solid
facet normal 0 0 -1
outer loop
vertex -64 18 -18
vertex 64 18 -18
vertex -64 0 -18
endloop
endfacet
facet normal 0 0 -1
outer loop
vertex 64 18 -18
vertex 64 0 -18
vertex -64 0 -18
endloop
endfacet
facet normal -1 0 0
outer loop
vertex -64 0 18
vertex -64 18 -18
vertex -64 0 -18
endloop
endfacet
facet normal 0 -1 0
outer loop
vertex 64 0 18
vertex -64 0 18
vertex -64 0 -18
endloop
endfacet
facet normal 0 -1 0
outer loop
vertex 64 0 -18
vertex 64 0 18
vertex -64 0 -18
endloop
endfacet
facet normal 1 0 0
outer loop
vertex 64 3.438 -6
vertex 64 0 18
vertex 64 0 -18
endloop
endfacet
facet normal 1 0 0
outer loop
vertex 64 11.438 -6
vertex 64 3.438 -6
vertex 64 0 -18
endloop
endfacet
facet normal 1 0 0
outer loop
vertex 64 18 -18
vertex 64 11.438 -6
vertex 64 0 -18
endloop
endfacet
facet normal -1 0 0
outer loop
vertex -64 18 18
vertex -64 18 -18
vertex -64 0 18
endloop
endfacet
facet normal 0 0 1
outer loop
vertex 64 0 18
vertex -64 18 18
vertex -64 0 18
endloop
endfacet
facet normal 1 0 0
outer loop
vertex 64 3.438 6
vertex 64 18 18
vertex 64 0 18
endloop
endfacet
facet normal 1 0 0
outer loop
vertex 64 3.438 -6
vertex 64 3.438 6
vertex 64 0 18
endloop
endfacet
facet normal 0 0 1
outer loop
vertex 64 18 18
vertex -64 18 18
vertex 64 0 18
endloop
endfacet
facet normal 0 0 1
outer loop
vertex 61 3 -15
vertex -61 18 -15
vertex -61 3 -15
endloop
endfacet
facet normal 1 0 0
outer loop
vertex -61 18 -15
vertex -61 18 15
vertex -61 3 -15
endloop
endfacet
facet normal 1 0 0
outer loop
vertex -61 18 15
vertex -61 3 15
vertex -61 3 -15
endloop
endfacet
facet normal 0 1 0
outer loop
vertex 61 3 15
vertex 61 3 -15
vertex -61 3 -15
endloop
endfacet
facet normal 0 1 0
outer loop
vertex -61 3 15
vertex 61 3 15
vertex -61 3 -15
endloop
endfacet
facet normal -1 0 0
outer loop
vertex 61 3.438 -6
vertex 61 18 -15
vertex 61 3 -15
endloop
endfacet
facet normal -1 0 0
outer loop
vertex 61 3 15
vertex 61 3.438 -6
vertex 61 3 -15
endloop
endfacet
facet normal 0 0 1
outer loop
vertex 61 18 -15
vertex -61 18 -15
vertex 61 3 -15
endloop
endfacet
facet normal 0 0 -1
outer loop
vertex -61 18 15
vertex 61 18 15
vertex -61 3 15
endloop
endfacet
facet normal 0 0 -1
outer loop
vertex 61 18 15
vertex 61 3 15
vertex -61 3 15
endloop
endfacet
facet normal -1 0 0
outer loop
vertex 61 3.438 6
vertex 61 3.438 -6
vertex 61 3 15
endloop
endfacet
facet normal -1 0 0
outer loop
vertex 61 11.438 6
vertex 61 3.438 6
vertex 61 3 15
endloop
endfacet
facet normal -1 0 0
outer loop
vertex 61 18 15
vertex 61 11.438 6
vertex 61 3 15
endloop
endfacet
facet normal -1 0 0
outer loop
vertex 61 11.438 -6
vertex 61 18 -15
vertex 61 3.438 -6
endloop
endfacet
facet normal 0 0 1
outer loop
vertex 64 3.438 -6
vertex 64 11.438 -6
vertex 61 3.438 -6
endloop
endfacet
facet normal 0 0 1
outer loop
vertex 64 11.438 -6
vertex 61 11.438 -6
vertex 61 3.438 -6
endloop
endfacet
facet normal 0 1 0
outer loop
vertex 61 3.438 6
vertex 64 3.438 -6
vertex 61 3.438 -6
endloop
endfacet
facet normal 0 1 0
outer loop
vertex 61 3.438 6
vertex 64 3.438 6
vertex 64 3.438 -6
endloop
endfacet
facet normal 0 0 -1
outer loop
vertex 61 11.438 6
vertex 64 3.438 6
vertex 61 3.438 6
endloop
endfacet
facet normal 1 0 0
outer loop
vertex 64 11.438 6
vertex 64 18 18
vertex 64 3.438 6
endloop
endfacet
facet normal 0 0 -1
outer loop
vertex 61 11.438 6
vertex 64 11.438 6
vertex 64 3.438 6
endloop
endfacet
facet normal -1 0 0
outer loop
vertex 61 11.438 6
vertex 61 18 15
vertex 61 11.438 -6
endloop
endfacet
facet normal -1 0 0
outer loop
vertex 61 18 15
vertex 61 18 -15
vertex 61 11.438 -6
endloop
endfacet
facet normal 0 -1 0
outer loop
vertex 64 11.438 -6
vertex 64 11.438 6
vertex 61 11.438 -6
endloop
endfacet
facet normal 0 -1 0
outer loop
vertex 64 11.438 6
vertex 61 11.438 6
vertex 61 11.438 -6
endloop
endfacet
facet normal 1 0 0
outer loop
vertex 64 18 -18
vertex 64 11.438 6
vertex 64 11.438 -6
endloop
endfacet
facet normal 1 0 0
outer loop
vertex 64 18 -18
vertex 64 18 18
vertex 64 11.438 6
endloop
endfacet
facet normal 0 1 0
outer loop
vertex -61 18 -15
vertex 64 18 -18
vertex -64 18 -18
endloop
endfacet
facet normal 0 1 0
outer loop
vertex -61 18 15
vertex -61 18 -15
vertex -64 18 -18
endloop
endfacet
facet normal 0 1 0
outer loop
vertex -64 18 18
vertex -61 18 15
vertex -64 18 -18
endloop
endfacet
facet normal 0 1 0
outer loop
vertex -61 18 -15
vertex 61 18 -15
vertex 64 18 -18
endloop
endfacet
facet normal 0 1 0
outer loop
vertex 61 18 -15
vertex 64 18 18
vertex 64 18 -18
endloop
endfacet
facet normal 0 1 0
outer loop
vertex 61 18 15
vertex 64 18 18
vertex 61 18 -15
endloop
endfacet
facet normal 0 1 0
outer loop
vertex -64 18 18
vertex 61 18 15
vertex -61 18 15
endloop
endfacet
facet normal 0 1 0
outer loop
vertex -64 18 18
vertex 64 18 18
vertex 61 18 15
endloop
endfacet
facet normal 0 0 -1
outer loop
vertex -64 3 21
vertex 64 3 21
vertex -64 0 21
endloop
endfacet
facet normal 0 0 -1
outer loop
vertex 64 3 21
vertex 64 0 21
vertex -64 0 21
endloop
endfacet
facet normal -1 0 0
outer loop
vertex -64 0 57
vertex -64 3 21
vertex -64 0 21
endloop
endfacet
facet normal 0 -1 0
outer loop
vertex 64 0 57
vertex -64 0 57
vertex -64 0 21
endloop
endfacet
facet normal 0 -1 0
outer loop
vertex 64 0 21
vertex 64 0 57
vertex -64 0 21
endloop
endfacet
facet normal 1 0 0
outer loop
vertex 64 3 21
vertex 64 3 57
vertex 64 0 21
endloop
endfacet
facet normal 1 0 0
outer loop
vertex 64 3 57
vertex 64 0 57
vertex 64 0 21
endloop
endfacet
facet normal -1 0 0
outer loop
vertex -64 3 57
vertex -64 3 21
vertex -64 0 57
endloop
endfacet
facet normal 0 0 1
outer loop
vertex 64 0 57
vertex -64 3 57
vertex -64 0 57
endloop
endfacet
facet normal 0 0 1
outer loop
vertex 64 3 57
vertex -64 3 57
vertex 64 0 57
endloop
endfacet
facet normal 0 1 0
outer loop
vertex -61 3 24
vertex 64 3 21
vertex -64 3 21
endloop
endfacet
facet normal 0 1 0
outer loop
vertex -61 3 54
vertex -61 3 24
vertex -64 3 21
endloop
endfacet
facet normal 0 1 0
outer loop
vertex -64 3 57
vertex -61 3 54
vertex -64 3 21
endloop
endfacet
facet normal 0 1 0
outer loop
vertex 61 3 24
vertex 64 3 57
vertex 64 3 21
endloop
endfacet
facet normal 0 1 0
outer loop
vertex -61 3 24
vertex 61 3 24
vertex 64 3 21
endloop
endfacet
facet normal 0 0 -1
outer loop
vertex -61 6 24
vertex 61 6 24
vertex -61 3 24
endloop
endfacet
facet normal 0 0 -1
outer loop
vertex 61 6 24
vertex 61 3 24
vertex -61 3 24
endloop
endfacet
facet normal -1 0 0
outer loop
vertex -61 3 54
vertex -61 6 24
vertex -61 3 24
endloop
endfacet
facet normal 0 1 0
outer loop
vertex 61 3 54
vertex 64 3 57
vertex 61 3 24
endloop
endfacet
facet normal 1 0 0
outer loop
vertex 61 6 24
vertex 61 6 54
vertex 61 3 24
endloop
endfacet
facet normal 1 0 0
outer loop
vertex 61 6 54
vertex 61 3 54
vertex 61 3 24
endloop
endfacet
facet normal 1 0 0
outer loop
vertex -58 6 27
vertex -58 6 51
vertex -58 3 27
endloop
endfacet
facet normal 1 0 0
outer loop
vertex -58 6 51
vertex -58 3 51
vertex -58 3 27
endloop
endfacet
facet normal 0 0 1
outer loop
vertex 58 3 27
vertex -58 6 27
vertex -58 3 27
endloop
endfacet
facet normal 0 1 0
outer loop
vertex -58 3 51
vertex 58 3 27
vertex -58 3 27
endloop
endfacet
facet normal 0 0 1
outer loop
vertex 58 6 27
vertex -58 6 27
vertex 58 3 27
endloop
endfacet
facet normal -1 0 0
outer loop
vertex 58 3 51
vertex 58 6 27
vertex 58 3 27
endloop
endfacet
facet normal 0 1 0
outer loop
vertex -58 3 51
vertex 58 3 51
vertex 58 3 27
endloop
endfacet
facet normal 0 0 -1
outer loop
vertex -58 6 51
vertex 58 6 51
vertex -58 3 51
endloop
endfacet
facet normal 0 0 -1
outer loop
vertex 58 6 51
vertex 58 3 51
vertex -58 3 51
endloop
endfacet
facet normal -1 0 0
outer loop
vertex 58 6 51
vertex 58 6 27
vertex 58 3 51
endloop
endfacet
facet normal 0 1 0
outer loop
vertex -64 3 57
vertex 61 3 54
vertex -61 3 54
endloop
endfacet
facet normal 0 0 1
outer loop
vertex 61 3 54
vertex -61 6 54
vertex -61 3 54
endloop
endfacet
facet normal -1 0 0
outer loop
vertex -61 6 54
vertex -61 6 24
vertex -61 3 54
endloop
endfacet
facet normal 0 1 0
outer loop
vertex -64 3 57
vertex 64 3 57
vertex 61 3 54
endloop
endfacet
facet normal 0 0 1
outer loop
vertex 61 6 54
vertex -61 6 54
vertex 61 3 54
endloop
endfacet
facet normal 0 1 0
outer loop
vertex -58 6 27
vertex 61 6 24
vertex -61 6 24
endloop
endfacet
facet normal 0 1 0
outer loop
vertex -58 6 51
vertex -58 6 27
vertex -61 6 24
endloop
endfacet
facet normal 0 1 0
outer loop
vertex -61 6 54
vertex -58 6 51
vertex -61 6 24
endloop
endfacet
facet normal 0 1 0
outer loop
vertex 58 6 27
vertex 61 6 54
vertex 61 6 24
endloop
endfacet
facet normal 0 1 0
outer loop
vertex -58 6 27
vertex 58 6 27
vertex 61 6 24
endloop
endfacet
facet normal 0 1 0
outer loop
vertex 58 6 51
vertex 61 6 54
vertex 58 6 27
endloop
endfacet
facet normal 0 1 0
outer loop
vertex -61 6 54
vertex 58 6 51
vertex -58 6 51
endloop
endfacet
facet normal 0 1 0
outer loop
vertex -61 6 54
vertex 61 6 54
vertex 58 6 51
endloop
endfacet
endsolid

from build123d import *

# Parameters (mm, degrees)
CROQUIS1_W              = 128
CROQUIS1_H              = 36
SALIENTE_EXTRUIR1_DEPTH = 3
CROQUIS3_W              = 128
CROQUIS3_H              = 36
CROQUIS3_W_2            = 122
CROQUIS3_H_2            = 30
SALIENTE_EXTRUIR2_DEPTH = 15
CROQUIS4_W              = 12
CROQUIS4_H              = 8
CORTAR_EXTRUIR1_DEPTH   = 12
CROQUIS6_W              = 128
CROQUIS6_H              = 36
SALIENTE_EXTRUIR3_DEPTH = 3
CROQUIS7_W              = 122
CROQUIS7_H              = 30
CROQUIS7_W_2            = 116
CROQUIS7_H_2            = 24
SALIENTE_EXTRUIR5_DEPTH = 3


with BuildPart() as part:
    # Croquis1 → Saliente-Extruir1 (new body)
    with BuildSketch(Plane(origin=(0, 0, 0), x_dir=(1, 0, 0), z_dir=(0, 1, 0))):
        Rectangle(CROQUIS1_W, CROQUIS1_H)
    extrude(amount=SALIENTE_EXTRUIR1_DEPTH)

    # Croquis3 → Saliente-Extruir2 (add)
    with BuildSketch(Plane(origin=(0, 3, 0), x_dir=(1, 0, 0), z_dir=(0, 1, 0))):
        Rectangle(CROQUIS3_W, CROQUIS3_H)
        Rectangle(CROQUIS3_W_2, CROQUIS3_H_2, mode=Mode.SUBTRACT)
    extrude(amount=SALIENTE_EXTRUIR2_DEPTH)

    # Croquis4 → Cortar-Extruir1 (cut)
    with BuildSketch(Plane(origin=(64, 0, 0), x_dir=(0, 0, -1), z_dir=(1, 0, 0))):
        with Locations((0, 7.438354728)):
            Rectangle(CROQUIS4_W, CROQUIS4_H)
    extrude(amount=-CORTAR_EXTRUIR1_DEPTH, mode=Mode.SUBTRACT)


with BuildPart() as body_2:
    # Croquis6 → Saliente-Extruir3 (new body)
    with BuildSketch(Plane(origin=(0, 0, 0), x_dir=(1, 0, 0), z_dir=(0, 1, 0))):
        with Locations((0, -39)):
            Rectangle(CROQUIS6_W, CROQUIS6_H)
    extrude(amount=SALIENTE_EXTRUIR3_DEPTH)

    # Croquis7 → Saliente-Extruir5 (add)
    with BuildSketch(Plane(origin=(0, 3, 0), x_dir=(1, 0, 0), z_dir=(0, 1, 0))):
        with Locations((0, -39)):
            Rectangle(CROQUIS7_W, CROQUIS7_H)
        with Locations((0, -39)):
            Rectangle(CROQUIS7_W_2, CROQUIS7_H_2, mode=Mode.SUBTRACT)
    extrude(amount=SALIENTE_EXTRUIR5_DEPTH)


solid = Compound([part.part, body_2.part])
